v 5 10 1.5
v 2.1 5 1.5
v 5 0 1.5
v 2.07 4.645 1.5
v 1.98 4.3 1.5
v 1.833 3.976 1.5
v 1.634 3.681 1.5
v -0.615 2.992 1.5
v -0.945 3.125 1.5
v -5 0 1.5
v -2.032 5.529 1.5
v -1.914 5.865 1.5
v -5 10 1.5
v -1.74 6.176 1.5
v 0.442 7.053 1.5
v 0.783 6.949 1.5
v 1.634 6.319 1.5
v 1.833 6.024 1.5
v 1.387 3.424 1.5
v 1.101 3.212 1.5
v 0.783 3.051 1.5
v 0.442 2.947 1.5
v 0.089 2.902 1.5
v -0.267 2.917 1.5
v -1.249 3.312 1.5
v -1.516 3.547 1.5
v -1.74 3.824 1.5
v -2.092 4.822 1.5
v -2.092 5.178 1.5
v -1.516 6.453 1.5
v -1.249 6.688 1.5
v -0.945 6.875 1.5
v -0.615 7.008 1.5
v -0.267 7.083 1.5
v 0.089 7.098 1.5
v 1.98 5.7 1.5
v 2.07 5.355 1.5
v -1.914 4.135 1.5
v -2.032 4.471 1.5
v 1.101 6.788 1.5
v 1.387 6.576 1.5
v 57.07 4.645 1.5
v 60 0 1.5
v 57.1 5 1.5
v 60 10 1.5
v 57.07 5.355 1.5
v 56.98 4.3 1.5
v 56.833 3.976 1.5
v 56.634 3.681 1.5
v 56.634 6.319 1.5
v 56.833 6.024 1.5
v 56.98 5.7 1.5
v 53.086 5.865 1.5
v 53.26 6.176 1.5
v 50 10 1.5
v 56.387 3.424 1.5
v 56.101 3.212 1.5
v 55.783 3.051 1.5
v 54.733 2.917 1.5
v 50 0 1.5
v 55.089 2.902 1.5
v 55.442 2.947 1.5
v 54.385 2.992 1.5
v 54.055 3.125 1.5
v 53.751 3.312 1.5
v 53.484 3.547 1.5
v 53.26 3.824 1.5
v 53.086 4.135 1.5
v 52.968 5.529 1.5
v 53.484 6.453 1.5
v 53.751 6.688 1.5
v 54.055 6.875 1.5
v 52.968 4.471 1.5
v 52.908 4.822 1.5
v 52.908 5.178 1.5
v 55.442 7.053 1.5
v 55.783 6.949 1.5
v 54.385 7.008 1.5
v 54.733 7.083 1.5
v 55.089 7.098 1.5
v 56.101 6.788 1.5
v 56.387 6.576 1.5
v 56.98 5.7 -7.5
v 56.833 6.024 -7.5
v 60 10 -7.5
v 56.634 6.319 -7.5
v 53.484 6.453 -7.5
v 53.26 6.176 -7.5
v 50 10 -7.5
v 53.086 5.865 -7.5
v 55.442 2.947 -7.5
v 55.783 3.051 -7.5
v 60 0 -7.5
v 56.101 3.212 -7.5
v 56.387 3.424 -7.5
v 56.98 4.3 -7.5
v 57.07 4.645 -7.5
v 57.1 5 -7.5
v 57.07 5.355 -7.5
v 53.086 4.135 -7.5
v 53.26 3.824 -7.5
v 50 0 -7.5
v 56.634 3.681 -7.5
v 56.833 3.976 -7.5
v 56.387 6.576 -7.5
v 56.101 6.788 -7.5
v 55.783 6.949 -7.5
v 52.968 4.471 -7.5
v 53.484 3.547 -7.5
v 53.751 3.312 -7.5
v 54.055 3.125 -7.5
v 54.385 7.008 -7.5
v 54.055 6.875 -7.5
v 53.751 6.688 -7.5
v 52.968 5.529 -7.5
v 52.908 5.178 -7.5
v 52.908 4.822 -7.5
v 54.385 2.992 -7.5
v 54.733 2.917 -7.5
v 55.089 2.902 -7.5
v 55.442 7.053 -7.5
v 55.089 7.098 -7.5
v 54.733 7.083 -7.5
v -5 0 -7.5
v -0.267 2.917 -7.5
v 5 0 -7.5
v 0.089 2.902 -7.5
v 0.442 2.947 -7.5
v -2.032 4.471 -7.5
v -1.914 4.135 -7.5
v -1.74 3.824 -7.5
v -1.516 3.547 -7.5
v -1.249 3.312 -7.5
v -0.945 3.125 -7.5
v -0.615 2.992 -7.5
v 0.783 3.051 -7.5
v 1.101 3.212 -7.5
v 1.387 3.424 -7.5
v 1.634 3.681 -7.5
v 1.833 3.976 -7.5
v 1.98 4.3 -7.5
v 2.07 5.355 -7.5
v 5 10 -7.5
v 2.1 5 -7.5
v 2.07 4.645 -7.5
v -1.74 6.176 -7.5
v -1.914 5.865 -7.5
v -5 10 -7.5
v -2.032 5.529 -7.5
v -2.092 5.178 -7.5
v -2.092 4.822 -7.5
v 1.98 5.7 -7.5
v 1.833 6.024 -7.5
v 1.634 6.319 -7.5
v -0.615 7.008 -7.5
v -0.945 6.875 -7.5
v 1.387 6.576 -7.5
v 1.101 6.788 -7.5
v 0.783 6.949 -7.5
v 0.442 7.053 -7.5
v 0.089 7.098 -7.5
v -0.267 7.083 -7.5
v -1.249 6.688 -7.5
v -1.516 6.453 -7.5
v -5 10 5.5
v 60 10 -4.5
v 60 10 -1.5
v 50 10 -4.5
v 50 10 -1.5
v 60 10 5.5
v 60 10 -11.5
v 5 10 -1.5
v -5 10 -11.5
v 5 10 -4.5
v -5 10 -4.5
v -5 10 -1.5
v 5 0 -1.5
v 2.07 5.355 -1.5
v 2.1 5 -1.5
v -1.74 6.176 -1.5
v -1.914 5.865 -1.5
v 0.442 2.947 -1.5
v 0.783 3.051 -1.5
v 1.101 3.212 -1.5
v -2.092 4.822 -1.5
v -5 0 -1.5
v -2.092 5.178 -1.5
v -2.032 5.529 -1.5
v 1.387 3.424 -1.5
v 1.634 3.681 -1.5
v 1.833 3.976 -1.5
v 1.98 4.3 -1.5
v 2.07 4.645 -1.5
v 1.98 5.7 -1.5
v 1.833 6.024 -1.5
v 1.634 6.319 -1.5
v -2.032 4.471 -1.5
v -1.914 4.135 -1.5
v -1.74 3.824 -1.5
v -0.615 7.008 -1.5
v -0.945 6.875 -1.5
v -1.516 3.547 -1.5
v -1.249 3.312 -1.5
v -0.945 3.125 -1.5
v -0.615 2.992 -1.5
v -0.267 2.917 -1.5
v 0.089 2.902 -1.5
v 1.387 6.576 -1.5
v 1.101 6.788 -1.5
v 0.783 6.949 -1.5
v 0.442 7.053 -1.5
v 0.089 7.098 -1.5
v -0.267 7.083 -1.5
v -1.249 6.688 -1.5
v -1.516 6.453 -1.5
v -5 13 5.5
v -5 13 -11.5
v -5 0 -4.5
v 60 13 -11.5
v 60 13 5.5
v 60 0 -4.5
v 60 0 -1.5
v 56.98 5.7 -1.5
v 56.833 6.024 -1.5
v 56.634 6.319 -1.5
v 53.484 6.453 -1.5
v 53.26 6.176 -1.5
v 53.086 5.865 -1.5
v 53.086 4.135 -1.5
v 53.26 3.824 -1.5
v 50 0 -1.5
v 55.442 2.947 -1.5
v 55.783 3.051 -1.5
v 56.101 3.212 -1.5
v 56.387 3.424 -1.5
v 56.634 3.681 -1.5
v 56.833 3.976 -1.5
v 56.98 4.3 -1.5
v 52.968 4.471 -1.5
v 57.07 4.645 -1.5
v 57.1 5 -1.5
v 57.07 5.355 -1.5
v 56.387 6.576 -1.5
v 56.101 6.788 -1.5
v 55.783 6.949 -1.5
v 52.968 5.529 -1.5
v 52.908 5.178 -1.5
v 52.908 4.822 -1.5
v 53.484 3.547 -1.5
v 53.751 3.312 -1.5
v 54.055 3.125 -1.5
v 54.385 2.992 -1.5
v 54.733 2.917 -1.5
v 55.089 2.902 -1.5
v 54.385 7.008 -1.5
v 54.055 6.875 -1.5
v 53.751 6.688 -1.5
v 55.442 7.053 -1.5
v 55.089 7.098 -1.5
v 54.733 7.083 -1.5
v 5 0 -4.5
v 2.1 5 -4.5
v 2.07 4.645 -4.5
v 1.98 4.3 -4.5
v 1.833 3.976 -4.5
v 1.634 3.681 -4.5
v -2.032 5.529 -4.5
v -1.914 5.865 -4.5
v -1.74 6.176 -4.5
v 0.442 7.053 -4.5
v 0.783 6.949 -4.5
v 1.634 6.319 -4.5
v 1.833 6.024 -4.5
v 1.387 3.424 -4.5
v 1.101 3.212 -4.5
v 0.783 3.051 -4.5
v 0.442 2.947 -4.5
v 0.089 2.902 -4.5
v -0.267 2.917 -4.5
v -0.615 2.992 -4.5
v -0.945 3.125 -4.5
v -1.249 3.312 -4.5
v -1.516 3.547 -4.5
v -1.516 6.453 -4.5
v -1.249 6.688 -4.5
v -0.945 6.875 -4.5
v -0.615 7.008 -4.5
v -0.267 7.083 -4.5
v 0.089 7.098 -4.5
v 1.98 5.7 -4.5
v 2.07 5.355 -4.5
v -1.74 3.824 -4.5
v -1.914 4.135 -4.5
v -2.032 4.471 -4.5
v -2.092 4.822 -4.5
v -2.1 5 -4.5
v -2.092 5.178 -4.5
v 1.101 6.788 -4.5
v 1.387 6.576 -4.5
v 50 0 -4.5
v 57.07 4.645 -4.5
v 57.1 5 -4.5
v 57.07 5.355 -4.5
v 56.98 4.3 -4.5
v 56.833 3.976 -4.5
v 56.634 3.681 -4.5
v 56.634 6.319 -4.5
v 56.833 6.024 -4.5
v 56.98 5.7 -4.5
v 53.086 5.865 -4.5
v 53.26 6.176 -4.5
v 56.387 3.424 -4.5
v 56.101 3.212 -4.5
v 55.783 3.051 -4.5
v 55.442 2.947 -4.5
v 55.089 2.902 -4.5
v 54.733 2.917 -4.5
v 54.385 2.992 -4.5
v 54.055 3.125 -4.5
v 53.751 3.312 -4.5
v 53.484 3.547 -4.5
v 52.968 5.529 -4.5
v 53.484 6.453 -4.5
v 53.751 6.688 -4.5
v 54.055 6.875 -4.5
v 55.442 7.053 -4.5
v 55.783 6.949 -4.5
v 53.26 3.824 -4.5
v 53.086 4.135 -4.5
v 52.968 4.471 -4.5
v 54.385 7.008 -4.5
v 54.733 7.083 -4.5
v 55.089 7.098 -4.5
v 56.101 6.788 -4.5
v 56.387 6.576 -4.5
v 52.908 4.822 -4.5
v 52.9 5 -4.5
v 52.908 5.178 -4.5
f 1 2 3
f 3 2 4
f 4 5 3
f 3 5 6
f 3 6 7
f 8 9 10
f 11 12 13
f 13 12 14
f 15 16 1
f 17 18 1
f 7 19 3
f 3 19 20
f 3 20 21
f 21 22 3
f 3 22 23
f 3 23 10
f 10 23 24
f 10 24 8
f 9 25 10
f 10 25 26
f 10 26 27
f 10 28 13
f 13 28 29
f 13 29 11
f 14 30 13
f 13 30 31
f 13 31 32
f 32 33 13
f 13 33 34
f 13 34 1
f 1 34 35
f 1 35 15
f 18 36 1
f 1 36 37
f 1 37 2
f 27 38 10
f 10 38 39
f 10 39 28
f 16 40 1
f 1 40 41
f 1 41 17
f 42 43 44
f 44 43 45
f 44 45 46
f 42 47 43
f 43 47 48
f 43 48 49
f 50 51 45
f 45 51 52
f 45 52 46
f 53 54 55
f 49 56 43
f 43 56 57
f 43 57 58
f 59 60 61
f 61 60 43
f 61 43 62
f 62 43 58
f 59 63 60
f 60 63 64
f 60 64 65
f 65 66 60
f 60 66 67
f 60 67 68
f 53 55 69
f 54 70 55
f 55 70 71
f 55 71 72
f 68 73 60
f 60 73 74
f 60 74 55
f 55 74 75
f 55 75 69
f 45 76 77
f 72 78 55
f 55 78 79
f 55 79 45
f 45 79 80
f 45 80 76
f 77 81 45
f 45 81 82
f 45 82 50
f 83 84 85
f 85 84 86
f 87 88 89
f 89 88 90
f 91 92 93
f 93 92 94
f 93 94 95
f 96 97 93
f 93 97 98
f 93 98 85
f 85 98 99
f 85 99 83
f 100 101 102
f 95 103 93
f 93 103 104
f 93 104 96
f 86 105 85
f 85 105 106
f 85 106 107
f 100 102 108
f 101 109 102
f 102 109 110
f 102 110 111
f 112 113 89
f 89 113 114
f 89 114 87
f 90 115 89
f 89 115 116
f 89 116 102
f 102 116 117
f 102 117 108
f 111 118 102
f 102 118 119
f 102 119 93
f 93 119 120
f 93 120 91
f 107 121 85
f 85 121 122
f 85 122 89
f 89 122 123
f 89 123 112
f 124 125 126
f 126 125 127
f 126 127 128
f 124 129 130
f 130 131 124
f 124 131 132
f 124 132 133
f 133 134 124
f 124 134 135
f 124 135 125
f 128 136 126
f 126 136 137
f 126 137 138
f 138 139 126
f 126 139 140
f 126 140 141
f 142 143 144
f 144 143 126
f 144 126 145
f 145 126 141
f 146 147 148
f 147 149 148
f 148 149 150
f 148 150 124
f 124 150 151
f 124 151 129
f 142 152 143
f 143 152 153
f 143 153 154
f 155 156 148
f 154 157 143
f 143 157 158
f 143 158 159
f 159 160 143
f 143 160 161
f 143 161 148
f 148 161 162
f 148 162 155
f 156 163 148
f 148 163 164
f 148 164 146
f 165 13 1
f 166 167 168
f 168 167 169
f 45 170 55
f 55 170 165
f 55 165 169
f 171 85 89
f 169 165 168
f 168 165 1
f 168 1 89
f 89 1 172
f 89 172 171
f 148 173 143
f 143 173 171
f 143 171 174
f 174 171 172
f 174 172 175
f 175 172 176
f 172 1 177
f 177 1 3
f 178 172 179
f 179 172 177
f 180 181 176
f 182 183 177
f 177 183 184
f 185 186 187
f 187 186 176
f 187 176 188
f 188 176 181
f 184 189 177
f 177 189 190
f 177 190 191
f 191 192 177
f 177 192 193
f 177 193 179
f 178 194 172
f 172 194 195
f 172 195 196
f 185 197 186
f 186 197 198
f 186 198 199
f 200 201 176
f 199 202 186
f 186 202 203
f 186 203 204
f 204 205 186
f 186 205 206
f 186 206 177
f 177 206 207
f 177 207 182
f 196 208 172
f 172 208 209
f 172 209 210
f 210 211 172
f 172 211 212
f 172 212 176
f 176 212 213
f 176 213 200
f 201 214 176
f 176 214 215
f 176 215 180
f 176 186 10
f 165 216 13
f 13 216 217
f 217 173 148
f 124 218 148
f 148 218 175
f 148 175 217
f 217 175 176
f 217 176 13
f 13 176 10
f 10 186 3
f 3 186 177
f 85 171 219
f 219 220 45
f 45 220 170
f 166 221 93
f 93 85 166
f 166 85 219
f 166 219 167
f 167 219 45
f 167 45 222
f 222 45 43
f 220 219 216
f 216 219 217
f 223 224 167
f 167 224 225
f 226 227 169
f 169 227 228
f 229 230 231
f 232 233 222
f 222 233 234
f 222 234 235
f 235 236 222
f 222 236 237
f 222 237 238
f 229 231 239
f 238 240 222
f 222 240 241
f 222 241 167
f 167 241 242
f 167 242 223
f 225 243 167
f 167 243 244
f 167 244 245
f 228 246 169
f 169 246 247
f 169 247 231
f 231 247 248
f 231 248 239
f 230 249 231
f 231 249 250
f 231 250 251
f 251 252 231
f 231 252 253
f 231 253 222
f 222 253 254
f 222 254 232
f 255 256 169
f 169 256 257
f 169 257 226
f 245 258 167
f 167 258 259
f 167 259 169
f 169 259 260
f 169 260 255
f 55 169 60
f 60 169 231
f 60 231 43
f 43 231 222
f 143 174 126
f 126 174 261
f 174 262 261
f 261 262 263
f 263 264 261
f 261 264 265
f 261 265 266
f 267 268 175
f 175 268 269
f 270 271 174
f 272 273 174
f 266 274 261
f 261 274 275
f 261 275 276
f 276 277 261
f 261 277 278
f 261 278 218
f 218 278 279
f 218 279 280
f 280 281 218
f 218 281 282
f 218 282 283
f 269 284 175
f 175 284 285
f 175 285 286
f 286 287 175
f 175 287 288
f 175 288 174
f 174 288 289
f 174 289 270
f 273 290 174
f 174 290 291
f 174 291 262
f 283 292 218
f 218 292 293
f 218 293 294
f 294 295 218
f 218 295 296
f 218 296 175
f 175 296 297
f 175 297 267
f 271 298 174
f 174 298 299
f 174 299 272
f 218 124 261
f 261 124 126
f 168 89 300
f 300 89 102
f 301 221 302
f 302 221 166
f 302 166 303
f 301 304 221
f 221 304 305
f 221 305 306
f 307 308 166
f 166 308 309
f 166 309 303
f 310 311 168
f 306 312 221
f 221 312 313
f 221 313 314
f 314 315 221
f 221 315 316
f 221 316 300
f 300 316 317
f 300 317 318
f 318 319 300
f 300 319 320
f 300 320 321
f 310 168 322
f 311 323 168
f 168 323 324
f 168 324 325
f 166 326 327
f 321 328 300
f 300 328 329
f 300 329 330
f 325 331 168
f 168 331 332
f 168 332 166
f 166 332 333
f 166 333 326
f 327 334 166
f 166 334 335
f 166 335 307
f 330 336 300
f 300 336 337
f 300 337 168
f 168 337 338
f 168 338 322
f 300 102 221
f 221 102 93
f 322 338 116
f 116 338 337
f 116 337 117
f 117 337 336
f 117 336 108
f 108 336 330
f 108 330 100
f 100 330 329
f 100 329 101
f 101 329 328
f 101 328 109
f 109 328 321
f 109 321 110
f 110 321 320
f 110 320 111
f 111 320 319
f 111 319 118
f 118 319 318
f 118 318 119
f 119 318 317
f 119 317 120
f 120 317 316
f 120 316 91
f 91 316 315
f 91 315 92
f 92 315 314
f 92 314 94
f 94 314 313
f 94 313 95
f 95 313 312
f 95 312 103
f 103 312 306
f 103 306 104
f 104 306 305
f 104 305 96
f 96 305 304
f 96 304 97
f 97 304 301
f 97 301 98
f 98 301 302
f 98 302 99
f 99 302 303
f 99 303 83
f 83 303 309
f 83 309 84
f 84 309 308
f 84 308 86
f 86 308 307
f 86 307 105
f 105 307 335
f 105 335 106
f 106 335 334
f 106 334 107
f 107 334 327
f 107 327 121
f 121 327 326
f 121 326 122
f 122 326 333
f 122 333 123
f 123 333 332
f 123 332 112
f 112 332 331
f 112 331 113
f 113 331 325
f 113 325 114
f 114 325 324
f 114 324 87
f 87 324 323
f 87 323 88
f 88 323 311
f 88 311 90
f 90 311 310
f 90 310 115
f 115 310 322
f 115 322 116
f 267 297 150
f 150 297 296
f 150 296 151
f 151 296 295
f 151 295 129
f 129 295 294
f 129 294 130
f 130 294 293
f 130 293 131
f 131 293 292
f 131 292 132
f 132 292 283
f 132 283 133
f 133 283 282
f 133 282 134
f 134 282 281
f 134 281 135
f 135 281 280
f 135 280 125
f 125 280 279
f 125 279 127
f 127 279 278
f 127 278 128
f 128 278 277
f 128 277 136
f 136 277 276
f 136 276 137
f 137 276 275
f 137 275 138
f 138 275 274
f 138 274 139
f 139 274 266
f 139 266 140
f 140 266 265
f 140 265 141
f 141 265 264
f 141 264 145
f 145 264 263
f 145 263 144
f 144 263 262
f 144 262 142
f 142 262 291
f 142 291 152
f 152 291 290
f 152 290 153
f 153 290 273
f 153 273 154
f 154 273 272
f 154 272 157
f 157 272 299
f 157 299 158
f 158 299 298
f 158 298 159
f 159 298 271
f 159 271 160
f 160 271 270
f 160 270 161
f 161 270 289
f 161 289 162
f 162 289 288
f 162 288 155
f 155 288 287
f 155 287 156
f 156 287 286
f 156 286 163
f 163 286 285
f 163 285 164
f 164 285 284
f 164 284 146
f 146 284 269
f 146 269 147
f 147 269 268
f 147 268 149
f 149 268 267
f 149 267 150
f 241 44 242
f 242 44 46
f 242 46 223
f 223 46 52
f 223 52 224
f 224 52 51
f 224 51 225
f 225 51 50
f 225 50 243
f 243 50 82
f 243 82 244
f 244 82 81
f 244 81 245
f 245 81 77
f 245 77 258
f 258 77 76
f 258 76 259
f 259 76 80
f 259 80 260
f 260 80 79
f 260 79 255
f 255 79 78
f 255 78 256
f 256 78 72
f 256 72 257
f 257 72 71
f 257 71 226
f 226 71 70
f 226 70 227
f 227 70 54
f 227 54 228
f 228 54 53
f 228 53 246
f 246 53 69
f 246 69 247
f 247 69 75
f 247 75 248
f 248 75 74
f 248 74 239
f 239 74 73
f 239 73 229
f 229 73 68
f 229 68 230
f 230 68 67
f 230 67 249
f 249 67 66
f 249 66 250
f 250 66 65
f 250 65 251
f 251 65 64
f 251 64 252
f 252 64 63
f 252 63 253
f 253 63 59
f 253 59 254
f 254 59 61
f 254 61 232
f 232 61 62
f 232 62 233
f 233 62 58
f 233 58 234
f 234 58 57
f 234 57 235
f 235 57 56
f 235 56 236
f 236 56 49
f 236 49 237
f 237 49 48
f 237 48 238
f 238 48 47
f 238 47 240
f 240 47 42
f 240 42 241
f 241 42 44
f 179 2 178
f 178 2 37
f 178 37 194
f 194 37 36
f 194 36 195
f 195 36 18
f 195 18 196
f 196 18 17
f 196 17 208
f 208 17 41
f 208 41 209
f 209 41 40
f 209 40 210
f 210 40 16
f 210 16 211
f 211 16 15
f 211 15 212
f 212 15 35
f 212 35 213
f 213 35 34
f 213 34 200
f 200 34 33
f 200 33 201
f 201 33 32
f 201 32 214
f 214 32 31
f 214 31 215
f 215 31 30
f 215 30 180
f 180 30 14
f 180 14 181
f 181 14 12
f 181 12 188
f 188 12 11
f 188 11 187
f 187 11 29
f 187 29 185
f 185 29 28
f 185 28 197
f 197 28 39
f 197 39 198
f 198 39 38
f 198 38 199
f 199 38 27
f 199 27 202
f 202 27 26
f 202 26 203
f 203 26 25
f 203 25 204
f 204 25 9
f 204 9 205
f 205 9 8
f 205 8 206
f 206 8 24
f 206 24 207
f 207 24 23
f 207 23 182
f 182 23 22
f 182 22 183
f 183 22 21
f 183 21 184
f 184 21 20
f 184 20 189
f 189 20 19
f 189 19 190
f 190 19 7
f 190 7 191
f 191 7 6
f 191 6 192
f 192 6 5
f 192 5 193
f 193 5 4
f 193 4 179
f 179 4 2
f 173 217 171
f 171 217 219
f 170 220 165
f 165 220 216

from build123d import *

# Parameters (mm, degrees)
SKETCH_3_W          = 10
SKETCH_3_H          = 3
EXTRUDE_1_DEPTH     = 10
EXTRUDE_1_2_DEPTH   = 10
EXTRUDE_1_3_DEPTH   = 10
EXTRUDE_1_4_DEPTH   = 10
SKETCH_4_W          = 65
SKETCH_4_H          = 9
EXTRUDE_2_DEPTH     = 3
SKETCH_5_R          = 2.1
CUT_EXTRUDE_1_DEPTH = 17
SKETCH_7_W          = 65
SKETCH_7_H          = 3
EXTRUDE_3_DEPTH     = 4
SKETCH_8_W          = 65
SKETCH_8_H          = 3
EXTRUDE_4_DEPTH     = 4


with BuildPart() as part:
    # Эскиз3 → Бобышка-Вытянуть1 (new body)
    with BuildSketch(Plane(origin=(0, 0, 0), x_dir=(1, 0, 0), z_dir=(0, 1, 0))):
        Rectangle(SKETCH_3_W, SKETCH_3_H)
    extrude(amount=EXTRUDE_1_DEPTH)



with BuildPart() as body_2:
    # Эскиз3 → Extrude 1 2 (new body)
    with BuildSketch(Plane(origin=(0, 0, 0), x_dir=(1, 0, 0), z_dir=(0, 1, 0))):
        with Locations((55, 0)):
            Rectangle(SKETCH_3_W, SKETCH_3_H)
    extrude(amount=EXTRUDE_1_2_DEPTH)


with BuildPart() as body_3:
    # Эскиз3 → Extrude 1 3 (new body)
    with BuildSketch(Plane(origin=(0, 0, 0), x_dir=(1, 0, 0), z_dir=(0, 1, 0))):
        with Locations((0, 6)):
            Rectangle(SKETCH_3_W, SKETCH_3_H)
    extrude(amount=EXTRUDE_1_3_DEPTH)


with BuildPart() as body_4:
    # Эскиз3 → Extrude 1 4 (new body)
    with BuildSketch(Plane(origin=(0, 0, 0), x_dir=(1, 0, 0), z_dir=(0, 1, 0))):
        with Locations((55, 6)):
            Rectangle(SKETCH_3_W, SKETCH_3_H)
    extrude(amount=EXTRUDE_1_4_DEPTH)


with BuildPart() as part_1:
    add(part.part)

    add(body_2.part)  # Бобышка-Вытянуть2 merges body 2

    add(body_3.part)  # Бобышка-Вытянуть2 merges body 3

    add(body_4.part)  # Бобышка-Вытянуть2 merges body 4
    # Эскиз4 → Бобышка-Вытянуть2 (add)
    with BuildSketch(Plane(origin=(0, 10, 0), x_dir=(1, 0, 0), z_dir=(0, 1, 0))):
        with Locations((27.5, 3)):
            Rectangle(SKETCH_4_W, SKETCH_4_H)
    extrude(amount=EXTRUDE_2_DEPTH)

    # Эскиз5 → Вырез-Вытянуть1 (cut)
    with BuildSketch(Plane.XY.offset(1.5)):
        with Locations((0, 5)):
            Circle(SKETCH_5_R)
        with Locations((55, 5)):
            Circle(SKETCH_5_R)
    extrude(amount=-CUT_EXTRUDE_1_DEPTH, mode=Mode.SUBTRACT)

    # Эскиз7 → Бобышка-Вытянуть3 (add)
    with BuildSketch(Plane(origin=(0, 0, -7.5), x_dir=(-1, 0, 0), z_dir=(0, 0, -1))):
        with Locations((-27.5, 11.5)):
            Rectangle(SKETCH_7_W, SKETCH_7_H)
    extrude(amount=EXTRUDE_3_DEPTH)

    # Эскиз8 → Бобышка-Вытянуть4 (add)
    with BuildSketch(Plane.XY.offset(1.5)):
        with Locations((27.5, 11.5)):
            Rectangle(SKETCH_8_W, SKETCH_8_H)
    extrude(amount=EXTRUDE_4_DEPTH)


solid = part_1.part
